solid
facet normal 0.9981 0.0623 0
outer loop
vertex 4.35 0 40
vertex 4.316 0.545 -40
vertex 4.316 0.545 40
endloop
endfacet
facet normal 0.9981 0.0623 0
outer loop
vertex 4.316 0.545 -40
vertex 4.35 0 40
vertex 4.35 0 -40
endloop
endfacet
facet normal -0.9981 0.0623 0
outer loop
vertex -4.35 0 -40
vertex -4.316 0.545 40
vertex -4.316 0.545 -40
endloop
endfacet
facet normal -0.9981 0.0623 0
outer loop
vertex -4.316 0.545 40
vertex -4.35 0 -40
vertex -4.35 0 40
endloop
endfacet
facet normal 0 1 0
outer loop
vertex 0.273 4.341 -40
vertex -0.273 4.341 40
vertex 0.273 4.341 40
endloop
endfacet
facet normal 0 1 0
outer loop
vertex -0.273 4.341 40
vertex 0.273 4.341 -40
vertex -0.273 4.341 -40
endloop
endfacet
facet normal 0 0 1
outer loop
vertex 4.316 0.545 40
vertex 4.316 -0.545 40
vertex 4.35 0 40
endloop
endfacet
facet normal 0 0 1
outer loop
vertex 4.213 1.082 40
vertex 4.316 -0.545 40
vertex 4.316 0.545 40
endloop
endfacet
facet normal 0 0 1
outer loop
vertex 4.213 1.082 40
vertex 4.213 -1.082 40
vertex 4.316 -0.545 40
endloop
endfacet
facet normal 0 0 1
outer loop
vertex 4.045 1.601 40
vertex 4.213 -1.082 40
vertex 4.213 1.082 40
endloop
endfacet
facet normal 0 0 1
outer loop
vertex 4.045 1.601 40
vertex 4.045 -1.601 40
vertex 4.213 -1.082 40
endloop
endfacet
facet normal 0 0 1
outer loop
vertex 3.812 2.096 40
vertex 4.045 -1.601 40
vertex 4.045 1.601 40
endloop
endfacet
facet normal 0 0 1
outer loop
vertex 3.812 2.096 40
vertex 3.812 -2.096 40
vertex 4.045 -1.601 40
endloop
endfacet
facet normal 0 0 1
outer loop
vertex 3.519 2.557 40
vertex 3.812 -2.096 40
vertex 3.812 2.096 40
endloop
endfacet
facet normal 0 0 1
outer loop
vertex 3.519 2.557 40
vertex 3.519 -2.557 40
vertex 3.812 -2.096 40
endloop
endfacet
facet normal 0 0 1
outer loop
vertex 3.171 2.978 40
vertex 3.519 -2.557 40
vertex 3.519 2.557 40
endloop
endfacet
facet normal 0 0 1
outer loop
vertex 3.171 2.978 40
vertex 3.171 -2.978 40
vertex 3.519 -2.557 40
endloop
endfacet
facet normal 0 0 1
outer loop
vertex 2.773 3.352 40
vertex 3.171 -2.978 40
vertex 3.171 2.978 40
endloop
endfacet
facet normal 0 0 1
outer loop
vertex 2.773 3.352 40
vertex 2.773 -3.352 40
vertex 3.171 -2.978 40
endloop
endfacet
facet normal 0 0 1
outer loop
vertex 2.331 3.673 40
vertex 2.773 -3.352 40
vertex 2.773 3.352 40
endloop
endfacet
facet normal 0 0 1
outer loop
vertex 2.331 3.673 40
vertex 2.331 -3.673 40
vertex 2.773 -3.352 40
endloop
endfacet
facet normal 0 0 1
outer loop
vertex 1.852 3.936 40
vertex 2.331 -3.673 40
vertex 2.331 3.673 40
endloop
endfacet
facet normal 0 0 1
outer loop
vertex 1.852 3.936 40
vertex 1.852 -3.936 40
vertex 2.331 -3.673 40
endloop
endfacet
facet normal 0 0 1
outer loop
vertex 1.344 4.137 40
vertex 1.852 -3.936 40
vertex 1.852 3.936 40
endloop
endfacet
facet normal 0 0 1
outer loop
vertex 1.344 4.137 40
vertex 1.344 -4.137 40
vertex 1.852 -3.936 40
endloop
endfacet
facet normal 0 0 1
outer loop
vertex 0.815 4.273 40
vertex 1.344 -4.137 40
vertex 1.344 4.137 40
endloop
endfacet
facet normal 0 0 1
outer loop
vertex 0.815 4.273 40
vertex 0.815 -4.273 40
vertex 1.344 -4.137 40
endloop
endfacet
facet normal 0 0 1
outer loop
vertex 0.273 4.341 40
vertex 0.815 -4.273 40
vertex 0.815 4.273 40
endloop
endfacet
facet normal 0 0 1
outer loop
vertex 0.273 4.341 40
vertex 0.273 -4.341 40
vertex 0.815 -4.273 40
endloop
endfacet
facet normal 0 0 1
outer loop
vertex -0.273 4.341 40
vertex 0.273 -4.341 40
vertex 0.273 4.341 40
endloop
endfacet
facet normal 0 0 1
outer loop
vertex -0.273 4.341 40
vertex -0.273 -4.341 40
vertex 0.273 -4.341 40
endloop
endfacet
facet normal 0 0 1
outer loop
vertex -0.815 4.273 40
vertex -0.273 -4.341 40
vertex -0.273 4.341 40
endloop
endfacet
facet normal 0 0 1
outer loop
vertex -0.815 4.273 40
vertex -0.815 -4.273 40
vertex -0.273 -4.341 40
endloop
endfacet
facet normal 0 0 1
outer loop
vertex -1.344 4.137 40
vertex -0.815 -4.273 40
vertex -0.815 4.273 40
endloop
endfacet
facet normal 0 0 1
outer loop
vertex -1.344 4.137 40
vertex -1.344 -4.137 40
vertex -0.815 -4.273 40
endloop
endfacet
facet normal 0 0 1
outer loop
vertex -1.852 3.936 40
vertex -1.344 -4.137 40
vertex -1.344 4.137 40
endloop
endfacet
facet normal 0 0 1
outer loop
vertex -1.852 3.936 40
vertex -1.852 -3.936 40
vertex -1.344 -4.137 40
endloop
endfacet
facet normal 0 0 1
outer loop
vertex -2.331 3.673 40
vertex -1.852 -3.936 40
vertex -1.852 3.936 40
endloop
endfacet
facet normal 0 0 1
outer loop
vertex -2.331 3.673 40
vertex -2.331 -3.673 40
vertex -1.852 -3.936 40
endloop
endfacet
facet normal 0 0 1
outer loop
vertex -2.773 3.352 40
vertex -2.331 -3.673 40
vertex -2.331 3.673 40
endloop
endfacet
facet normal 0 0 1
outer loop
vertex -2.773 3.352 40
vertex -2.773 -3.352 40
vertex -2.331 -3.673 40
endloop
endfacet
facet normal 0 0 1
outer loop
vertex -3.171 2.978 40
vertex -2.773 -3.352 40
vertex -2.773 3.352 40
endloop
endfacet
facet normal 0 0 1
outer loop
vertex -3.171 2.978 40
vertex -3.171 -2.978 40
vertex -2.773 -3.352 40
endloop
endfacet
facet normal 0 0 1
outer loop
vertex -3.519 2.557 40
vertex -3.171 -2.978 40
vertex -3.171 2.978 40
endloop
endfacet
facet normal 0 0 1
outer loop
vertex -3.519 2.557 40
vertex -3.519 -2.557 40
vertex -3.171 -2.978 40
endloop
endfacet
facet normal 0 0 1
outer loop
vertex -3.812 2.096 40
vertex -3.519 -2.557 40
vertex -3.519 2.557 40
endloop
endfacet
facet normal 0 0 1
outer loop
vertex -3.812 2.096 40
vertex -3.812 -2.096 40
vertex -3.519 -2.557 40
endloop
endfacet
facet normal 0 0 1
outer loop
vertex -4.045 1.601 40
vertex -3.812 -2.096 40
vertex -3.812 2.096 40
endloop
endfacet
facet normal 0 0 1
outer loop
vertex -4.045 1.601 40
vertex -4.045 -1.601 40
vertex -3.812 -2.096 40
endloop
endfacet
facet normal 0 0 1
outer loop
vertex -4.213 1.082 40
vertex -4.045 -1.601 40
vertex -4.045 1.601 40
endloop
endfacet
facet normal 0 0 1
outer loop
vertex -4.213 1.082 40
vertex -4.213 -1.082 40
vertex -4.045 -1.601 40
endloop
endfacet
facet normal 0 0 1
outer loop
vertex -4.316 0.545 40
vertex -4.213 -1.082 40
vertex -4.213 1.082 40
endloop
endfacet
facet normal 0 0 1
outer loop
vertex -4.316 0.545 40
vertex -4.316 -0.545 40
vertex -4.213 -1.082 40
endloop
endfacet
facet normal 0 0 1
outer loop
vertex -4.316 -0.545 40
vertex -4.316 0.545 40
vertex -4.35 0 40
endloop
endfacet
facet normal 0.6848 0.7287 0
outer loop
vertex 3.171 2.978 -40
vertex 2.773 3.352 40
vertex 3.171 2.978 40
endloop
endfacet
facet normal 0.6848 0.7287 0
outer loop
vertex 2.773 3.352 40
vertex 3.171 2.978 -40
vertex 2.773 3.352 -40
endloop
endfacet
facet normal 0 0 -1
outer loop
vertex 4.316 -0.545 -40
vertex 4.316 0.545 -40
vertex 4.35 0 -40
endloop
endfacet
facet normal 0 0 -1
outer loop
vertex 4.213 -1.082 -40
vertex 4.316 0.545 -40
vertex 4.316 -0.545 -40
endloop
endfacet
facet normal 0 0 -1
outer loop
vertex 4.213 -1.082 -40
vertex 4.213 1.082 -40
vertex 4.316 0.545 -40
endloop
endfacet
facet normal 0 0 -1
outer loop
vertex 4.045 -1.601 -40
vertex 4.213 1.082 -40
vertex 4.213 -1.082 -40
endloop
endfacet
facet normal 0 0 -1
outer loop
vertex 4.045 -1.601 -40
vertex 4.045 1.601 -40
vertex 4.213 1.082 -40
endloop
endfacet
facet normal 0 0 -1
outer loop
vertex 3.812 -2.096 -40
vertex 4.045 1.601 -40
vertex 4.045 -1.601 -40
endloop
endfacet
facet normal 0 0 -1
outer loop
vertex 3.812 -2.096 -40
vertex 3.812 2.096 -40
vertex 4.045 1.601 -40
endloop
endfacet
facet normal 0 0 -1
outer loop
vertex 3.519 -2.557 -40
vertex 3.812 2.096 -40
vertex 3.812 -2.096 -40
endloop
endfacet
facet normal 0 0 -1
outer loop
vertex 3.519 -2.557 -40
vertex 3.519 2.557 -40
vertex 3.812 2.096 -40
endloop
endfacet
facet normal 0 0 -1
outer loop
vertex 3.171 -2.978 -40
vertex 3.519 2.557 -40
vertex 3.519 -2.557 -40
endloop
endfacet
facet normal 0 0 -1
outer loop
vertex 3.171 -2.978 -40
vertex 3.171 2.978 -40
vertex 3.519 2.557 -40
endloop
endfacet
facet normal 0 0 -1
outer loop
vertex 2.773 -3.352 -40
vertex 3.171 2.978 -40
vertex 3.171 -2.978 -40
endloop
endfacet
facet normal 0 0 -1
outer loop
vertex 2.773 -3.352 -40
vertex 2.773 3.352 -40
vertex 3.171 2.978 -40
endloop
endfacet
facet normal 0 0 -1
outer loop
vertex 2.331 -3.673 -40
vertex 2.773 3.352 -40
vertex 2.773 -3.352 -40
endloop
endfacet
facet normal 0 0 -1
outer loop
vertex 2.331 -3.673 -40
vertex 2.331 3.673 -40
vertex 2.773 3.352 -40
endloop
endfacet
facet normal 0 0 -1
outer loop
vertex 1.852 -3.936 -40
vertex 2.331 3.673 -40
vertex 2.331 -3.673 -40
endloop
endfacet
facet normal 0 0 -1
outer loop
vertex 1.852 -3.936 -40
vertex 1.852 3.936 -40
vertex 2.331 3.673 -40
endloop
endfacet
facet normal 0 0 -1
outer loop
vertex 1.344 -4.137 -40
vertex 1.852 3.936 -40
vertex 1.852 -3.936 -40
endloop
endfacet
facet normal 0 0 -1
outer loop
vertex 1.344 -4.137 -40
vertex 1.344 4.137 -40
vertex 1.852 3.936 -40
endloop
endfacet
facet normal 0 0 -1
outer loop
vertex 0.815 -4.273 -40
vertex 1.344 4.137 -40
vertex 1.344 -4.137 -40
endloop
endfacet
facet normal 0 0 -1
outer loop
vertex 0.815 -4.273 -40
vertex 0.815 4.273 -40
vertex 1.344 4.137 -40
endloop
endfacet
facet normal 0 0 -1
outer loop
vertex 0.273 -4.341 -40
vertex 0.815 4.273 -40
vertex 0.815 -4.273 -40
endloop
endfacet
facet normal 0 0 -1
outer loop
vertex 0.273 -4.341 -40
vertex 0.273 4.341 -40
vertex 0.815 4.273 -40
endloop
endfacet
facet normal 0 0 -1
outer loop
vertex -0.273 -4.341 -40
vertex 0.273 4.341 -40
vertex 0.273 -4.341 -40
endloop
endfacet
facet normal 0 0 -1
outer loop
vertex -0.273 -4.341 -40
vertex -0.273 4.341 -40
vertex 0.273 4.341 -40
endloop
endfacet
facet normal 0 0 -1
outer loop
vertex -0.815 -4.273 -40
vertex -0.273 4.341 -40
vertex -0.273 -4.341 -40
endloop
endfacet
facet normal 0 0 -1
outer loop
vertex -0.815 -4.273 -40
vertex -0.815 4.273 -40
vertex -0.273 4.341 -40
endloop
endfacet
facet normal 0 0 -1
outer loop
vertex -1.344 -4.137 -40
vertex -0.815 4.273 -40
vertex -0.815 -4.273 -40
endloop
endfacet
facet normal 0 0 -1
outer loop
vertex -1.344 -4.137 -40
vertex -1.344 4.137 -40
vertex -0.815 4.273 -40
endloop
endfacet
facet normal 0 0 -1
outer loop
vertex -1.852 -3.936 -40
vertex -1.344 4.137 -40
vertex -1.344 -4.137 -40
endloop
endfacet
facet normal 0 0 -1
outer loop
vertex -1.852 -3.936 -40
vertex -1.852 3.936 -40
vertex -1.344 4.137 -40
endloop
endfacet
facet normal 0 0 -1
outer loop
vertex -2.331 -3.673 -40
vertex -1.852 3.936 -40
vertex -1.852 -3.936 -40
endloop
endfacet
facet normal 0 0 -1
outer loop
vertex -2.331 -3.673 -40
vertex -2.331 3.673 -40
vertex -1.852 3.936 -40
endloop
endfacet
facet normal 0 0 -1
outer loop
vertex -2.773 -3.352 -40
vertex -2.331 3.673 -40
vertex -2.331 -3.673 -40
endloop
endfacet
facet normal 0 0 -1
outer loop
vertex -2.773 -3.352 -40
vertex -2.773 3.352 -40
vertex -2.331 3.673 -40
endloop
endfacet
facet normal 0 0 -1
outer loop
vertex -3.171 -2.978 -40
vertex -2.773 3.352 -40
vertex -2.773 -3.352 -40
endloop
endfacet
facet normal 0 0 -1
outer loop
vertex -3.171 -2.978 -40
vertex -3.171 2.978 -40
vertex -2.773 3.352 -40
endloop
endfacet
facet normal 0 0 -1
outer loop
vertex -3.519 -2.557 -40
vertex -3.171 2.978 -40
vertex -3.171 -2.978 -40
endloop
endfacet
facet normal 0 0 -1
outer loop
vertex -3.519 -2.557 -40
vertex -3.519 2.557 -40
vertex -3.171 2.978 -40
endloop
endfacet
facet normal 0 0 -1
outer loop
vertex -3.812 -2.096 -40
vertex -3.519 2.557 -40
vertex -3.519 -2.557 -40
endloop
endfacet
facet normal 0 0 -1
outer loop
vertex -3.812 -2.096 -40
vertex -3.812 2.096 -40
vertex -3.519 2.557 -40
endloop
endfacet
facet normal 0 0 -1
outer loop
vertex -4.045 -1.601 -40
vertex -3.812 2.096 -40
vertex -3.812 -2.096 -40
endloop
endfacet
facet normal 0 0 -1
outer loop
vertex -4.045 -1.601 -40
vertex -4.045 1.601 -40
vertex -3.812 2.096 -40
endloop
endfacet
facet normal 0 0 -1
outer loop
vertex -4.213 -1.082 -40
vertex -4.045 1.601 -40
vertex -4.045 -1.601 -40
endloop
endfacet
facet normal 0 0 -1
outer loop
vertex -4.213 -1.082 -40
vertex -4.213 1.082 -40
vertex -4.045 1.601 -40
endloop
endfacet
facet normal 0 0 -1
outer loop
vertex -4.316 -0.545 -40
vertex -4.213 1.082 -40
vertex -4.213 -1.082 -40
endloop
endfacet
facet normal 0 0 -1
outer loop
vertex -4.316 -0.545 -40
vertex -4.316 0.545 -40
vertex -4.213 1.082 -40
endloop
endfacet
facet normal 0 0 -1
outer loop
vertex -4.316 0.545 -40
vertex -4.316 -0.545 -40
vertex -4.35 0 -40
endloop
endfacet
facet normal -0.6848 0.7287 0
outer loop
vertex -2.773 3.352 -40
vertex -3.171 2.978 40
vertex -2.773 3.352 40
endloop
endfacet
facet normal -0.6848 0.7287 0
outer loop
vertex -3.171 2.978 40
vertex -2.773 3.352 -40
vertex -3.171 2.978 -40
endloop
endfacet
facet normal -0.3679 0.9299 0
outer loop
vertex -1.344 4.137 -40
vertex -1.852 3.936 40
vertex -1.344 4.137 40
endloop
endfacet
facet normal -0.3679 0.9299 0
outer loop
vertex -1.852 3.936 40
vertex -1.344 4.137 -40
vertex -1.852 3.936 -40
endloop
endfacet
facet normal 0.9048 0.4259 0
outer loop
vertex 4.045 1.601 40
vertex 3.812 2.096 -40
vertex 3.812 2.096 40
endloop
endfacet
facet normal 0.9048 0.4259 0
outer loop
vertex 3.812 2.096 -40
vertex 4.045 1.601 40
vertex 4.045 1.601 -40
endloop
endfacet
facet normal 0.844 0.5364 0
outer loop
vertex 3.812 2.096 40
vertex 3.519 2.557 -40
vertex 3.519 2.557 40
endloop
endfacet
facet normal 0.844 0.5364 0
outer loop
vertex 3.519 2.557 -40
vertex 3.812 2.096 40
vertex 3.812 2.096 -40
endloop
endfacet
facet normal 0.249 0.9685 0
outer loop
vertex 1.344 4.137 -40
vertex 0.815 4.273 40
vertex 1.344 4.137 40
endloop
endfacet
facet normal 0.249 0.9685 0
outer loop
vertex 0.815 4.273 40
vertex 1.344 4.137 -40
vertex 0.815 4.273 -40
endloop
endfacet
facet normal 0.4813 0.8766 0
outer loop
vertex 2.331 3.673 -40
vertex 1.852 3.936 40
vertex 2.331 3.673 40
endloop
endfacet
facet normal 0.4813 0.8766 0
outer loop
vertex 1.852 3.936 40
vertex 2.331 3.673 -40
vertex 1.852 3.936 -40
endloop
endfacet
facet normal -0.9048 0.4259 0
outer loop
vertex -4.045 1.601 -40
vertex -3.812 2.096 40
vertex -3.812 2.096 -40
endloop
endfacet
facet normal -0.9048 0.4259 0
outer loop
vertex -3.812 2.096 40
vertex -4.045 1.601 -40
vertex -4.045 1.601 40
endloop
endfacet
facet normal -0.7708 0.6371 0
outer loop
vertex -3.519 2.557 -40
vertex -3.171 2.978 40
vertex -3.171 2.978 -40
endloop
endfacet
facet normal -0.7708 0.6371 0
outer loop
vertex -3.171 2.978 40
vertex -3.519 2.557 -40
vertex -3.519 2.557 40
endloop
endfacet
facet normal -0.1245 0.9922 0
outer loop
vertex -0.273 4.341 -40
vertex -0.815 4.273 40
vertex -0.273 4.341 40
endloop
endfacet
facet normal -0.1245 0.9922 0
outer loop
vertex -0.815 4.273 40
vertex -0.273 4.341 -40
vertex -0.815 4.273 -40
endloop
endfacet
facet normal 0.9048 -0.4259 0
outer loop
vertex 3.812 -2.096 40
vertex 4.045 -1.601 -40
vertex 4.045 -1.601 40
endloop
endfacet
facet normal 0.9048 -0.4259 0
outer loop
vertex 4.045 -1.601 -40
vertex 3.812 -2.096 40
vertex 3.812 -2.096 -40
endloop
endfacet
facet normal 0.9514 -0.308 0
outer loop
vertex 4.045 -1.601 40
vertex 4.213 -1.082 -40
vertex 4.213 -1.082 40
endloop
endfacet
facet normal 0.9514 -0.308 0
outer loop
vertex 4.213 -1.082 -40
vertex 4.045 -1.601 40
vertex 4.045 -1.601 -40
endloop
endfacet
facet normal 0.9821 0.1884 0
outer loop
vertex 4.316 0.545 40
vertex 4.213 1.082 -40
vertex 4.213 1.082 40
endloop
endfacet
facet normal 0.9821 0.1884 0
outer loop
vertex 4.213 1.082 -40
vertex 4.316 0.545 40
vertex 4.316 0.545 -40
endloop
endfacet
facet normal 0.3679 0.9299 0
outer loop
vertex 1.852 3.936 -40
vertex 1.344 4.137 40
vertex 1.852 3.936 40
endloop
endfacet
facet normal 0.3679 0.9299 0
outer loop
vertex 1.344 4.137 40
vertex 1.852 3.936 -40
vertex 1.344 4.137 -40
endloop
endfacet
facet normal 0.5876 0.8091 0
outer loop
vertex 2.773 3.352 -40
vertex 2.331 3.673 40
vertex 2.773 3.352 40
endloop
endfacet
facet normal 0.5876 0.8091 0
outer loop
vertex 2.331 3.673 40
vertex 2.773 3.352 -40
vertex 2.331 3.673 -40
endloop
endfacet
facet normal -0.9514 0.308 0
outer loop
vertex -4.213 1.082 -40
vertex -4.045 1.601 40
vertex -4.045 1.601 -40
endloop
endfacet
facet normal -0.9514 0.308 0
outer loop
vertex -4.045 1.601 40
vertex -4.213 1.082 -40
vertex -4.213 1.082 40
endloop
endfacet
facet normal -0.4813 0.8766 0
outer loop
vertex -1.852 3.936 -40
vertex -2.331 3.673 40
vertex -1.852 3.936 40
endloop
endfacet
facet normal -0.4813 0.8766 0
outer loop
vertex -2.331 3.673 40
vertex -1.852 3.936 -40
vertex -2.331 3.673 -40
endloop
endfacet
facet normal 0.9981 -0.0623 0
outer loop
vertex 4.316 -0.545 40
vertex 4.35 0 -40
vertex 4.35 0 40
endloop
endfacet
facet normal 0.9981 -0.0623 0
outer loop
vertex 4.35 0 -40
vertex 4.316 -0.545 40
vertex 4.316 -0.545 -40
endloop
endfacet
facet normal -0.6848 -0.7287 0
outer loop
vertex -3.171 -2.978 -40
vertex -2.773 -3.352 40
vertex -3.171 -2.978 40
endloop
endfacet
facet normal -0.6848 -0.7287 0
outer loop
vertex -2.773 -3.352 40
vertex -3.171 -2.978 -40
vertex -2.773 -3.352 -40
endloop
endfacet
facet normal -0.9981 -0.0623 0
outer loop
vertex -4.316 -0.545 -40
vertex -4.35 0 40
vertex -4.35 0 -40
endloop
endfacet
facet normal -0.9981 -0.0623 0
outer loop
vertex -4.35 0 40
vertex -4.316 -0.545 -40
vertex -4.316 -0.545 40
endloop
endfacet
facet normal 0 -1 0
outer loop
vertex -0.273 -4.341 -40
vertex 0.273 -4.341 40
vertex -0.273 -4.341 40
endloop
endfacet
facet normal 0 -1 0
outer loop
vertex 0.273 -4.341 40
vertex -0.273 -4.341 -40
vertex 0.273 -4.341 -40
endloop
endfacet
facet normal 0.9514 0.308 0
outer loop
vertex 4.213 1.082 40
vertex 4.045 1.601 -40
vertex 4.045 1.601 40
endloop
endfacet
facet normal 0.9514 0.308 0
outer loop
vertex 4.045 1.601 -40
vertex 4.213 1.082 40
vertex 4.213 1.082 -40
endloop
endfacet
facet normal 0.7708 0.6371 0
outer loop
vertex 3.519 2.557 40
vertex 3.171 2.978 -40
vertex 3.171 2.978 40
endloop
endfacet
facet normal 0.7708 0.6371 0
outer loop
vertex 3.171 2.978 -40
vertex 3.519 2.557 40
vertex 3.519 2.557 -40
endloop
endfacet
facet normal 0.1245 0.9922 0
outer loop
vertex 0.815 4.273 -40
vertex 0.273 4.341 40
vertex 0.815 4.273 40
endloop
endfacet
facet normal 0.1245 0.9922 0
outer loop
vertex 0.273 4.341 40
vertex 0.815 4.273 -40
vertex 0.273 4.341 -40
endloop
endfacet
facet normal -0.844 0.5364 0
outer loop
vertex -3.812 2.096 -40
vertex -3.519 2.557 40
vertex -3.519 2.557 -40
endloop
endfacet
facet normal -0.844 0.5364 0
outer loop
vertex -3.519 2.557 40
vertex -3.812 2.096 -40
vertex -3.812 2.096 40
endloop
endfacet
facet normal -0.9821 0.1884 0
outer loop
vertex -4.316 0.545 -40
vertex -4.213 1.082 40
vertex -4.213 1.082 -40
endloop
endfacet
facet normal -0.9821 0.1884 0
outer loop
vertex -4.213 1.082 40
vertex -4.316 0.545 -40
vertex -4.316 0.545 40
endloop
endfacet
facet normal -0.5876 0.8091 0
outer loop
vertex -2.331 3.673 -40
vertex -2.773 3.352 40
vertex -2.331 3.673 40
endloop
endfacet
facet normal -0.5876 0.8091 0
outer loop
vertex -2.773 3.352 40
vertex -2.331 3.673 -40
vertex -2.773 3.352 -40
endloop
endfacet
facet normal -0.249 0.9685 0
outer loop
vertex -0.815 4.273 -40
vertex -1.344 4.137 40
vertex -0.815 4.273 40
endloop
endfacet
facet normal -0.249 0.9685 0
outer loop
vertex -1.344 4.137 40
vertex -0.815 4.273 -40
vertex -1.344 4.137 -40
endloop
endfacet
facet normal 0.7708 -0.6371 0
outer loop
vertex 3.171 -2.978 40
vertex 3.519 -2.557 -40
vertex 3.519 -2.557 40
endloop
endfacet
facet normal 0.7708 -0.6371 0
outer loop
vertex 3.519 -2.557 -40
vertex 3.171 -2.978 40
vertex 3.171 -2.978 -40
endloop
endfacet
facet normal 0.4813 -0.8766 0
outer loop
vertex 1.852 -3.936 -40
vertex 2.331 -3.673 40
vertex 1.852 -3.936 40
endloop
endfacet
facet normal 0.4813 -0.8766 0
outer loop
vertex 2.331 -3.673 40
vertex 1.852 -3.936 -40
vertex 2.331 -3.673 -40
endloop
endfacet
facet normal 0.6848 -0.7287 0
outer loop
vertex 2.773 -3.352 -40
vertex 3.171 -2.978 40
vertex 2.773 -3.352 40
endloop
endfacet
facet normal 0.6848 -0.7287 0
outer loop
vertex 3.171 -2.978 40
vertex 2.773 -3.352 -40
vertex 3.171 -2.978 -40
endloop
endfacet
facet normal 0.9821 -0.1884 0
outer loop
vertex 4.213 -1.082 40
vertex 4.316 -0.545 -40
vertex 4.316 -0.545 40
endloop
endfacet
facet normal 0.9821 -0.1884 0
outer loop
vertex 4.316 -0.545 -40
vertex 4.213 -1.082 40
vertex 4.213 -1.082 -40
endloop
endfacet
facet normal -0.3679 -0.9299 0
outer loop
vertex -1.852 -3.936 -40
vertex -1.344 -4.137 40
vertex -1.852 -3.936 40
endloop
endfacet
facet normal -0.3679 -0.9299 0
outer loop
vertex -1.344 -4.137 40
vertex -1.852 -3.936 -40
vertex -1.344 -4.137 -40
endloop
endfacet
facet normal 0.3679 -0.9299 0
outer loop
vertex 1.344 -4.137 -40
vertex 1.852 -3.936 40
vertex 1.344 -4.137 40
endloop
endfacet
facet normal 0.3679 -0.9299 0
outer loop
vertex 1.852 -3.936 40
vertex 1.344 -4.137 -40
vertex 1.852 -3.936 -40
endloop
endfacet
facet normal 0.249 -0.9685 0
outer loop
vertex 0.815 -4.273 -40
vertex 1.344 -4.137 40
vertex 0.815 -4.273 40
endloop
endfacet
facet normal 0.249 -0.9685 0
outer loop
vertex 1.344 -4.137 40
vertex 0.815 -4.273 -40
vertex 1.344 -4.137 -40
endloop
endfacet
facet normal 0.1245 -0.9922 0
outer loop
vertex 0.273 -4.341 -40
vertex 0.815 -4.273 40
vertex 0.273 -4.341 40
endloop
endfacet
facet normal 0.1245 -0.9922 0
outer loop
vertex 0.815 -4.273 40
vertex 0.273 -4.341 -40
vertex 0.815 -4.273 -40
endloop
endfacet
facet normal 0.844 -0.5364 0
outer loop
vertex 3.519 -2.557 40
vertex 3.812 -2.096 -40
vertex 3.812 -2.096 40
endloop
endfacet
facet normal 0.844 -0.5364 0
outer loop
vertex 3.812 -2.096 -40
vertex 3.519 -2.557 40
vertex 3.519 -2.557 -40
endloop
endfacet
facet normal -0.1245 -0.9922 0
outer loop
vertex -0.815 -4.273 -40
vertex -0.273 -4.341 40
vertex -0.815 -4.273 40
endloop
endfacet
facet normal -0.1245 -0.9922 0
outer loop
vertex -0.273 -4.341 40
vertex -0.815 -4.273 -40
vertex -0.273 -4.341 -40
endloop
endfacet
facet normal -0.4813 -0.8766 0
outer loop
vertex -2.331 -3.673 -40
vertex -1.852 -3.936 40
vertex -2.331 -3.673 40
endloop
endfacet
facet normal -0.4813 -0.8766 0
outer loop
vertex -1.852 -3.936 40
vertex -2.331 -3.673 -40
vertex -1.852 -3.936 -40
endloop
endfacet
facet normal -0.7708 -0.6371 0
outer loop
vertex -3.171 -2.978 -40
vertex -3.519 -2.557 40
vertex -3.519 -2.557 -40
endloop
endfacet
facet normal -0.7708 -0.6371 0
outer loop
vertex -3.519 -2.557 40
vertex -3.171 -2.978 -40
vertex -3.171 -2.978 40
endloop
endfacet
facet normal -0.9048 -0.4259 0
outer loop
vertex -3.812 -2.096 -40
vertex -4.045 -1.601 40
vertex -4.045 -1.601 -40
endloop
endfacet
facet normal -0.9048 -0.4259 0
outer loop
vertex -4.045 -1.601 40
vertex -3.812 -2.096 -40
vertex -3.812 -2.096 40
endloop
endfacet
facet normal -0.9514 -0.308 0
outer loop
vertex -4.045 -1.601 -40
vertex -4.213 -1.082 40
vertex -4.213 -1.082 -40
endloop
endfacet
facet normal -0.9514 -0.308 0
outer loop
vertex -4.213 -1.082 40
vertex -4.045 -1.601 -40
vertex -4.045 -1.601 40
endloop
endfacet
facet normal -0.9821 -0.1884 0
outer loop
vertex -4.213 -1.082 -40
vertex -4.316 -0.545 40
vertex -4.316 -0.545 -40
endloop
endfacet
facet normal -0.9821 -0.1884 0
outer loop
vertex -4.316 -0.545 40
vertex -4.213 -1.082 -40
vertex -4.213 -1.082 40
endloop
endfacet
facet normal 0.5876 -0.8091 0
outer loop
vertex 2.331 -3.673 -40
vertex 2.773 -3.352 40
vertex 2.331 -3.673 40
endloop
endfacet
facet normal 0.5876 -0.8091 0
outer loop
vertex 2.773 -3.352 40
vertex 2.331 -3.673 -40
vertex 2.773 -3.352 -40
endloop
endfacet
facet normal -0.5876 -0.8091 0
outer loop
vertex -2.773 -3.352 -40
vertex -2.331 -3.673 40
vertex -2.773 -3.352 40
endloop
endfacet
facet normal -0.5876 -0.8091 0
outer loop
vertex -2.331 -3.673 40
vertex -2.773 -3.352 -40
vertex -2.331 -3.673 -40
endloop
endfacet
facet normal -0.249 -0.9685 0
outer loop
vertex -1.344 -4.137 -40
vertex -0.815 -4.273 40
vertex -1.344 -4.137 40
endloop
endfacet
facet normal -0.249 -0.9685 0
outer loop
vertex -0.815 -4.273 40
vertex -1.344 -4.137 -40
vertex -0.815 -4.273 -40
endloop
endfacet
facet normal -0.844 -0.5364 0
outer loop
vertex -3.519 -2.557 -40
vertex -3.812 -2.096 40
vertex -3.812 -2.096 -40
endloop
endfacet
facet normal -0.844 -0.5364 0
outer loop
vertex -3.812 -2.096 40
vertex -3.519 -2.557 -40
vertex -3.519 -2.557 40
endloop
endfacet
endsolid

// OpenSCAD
$fn = 50;


difference() {
	union() {
		translate(v = [0, 0, -40.0000000000]) {
			cylinder(h = 80, r = 4.3500000000);
		}
	}
	union() {
		translate(v = [0, 0, -100.0000000000]) {
			cylinder(h = 200, r = 0);
		}
	}
}
